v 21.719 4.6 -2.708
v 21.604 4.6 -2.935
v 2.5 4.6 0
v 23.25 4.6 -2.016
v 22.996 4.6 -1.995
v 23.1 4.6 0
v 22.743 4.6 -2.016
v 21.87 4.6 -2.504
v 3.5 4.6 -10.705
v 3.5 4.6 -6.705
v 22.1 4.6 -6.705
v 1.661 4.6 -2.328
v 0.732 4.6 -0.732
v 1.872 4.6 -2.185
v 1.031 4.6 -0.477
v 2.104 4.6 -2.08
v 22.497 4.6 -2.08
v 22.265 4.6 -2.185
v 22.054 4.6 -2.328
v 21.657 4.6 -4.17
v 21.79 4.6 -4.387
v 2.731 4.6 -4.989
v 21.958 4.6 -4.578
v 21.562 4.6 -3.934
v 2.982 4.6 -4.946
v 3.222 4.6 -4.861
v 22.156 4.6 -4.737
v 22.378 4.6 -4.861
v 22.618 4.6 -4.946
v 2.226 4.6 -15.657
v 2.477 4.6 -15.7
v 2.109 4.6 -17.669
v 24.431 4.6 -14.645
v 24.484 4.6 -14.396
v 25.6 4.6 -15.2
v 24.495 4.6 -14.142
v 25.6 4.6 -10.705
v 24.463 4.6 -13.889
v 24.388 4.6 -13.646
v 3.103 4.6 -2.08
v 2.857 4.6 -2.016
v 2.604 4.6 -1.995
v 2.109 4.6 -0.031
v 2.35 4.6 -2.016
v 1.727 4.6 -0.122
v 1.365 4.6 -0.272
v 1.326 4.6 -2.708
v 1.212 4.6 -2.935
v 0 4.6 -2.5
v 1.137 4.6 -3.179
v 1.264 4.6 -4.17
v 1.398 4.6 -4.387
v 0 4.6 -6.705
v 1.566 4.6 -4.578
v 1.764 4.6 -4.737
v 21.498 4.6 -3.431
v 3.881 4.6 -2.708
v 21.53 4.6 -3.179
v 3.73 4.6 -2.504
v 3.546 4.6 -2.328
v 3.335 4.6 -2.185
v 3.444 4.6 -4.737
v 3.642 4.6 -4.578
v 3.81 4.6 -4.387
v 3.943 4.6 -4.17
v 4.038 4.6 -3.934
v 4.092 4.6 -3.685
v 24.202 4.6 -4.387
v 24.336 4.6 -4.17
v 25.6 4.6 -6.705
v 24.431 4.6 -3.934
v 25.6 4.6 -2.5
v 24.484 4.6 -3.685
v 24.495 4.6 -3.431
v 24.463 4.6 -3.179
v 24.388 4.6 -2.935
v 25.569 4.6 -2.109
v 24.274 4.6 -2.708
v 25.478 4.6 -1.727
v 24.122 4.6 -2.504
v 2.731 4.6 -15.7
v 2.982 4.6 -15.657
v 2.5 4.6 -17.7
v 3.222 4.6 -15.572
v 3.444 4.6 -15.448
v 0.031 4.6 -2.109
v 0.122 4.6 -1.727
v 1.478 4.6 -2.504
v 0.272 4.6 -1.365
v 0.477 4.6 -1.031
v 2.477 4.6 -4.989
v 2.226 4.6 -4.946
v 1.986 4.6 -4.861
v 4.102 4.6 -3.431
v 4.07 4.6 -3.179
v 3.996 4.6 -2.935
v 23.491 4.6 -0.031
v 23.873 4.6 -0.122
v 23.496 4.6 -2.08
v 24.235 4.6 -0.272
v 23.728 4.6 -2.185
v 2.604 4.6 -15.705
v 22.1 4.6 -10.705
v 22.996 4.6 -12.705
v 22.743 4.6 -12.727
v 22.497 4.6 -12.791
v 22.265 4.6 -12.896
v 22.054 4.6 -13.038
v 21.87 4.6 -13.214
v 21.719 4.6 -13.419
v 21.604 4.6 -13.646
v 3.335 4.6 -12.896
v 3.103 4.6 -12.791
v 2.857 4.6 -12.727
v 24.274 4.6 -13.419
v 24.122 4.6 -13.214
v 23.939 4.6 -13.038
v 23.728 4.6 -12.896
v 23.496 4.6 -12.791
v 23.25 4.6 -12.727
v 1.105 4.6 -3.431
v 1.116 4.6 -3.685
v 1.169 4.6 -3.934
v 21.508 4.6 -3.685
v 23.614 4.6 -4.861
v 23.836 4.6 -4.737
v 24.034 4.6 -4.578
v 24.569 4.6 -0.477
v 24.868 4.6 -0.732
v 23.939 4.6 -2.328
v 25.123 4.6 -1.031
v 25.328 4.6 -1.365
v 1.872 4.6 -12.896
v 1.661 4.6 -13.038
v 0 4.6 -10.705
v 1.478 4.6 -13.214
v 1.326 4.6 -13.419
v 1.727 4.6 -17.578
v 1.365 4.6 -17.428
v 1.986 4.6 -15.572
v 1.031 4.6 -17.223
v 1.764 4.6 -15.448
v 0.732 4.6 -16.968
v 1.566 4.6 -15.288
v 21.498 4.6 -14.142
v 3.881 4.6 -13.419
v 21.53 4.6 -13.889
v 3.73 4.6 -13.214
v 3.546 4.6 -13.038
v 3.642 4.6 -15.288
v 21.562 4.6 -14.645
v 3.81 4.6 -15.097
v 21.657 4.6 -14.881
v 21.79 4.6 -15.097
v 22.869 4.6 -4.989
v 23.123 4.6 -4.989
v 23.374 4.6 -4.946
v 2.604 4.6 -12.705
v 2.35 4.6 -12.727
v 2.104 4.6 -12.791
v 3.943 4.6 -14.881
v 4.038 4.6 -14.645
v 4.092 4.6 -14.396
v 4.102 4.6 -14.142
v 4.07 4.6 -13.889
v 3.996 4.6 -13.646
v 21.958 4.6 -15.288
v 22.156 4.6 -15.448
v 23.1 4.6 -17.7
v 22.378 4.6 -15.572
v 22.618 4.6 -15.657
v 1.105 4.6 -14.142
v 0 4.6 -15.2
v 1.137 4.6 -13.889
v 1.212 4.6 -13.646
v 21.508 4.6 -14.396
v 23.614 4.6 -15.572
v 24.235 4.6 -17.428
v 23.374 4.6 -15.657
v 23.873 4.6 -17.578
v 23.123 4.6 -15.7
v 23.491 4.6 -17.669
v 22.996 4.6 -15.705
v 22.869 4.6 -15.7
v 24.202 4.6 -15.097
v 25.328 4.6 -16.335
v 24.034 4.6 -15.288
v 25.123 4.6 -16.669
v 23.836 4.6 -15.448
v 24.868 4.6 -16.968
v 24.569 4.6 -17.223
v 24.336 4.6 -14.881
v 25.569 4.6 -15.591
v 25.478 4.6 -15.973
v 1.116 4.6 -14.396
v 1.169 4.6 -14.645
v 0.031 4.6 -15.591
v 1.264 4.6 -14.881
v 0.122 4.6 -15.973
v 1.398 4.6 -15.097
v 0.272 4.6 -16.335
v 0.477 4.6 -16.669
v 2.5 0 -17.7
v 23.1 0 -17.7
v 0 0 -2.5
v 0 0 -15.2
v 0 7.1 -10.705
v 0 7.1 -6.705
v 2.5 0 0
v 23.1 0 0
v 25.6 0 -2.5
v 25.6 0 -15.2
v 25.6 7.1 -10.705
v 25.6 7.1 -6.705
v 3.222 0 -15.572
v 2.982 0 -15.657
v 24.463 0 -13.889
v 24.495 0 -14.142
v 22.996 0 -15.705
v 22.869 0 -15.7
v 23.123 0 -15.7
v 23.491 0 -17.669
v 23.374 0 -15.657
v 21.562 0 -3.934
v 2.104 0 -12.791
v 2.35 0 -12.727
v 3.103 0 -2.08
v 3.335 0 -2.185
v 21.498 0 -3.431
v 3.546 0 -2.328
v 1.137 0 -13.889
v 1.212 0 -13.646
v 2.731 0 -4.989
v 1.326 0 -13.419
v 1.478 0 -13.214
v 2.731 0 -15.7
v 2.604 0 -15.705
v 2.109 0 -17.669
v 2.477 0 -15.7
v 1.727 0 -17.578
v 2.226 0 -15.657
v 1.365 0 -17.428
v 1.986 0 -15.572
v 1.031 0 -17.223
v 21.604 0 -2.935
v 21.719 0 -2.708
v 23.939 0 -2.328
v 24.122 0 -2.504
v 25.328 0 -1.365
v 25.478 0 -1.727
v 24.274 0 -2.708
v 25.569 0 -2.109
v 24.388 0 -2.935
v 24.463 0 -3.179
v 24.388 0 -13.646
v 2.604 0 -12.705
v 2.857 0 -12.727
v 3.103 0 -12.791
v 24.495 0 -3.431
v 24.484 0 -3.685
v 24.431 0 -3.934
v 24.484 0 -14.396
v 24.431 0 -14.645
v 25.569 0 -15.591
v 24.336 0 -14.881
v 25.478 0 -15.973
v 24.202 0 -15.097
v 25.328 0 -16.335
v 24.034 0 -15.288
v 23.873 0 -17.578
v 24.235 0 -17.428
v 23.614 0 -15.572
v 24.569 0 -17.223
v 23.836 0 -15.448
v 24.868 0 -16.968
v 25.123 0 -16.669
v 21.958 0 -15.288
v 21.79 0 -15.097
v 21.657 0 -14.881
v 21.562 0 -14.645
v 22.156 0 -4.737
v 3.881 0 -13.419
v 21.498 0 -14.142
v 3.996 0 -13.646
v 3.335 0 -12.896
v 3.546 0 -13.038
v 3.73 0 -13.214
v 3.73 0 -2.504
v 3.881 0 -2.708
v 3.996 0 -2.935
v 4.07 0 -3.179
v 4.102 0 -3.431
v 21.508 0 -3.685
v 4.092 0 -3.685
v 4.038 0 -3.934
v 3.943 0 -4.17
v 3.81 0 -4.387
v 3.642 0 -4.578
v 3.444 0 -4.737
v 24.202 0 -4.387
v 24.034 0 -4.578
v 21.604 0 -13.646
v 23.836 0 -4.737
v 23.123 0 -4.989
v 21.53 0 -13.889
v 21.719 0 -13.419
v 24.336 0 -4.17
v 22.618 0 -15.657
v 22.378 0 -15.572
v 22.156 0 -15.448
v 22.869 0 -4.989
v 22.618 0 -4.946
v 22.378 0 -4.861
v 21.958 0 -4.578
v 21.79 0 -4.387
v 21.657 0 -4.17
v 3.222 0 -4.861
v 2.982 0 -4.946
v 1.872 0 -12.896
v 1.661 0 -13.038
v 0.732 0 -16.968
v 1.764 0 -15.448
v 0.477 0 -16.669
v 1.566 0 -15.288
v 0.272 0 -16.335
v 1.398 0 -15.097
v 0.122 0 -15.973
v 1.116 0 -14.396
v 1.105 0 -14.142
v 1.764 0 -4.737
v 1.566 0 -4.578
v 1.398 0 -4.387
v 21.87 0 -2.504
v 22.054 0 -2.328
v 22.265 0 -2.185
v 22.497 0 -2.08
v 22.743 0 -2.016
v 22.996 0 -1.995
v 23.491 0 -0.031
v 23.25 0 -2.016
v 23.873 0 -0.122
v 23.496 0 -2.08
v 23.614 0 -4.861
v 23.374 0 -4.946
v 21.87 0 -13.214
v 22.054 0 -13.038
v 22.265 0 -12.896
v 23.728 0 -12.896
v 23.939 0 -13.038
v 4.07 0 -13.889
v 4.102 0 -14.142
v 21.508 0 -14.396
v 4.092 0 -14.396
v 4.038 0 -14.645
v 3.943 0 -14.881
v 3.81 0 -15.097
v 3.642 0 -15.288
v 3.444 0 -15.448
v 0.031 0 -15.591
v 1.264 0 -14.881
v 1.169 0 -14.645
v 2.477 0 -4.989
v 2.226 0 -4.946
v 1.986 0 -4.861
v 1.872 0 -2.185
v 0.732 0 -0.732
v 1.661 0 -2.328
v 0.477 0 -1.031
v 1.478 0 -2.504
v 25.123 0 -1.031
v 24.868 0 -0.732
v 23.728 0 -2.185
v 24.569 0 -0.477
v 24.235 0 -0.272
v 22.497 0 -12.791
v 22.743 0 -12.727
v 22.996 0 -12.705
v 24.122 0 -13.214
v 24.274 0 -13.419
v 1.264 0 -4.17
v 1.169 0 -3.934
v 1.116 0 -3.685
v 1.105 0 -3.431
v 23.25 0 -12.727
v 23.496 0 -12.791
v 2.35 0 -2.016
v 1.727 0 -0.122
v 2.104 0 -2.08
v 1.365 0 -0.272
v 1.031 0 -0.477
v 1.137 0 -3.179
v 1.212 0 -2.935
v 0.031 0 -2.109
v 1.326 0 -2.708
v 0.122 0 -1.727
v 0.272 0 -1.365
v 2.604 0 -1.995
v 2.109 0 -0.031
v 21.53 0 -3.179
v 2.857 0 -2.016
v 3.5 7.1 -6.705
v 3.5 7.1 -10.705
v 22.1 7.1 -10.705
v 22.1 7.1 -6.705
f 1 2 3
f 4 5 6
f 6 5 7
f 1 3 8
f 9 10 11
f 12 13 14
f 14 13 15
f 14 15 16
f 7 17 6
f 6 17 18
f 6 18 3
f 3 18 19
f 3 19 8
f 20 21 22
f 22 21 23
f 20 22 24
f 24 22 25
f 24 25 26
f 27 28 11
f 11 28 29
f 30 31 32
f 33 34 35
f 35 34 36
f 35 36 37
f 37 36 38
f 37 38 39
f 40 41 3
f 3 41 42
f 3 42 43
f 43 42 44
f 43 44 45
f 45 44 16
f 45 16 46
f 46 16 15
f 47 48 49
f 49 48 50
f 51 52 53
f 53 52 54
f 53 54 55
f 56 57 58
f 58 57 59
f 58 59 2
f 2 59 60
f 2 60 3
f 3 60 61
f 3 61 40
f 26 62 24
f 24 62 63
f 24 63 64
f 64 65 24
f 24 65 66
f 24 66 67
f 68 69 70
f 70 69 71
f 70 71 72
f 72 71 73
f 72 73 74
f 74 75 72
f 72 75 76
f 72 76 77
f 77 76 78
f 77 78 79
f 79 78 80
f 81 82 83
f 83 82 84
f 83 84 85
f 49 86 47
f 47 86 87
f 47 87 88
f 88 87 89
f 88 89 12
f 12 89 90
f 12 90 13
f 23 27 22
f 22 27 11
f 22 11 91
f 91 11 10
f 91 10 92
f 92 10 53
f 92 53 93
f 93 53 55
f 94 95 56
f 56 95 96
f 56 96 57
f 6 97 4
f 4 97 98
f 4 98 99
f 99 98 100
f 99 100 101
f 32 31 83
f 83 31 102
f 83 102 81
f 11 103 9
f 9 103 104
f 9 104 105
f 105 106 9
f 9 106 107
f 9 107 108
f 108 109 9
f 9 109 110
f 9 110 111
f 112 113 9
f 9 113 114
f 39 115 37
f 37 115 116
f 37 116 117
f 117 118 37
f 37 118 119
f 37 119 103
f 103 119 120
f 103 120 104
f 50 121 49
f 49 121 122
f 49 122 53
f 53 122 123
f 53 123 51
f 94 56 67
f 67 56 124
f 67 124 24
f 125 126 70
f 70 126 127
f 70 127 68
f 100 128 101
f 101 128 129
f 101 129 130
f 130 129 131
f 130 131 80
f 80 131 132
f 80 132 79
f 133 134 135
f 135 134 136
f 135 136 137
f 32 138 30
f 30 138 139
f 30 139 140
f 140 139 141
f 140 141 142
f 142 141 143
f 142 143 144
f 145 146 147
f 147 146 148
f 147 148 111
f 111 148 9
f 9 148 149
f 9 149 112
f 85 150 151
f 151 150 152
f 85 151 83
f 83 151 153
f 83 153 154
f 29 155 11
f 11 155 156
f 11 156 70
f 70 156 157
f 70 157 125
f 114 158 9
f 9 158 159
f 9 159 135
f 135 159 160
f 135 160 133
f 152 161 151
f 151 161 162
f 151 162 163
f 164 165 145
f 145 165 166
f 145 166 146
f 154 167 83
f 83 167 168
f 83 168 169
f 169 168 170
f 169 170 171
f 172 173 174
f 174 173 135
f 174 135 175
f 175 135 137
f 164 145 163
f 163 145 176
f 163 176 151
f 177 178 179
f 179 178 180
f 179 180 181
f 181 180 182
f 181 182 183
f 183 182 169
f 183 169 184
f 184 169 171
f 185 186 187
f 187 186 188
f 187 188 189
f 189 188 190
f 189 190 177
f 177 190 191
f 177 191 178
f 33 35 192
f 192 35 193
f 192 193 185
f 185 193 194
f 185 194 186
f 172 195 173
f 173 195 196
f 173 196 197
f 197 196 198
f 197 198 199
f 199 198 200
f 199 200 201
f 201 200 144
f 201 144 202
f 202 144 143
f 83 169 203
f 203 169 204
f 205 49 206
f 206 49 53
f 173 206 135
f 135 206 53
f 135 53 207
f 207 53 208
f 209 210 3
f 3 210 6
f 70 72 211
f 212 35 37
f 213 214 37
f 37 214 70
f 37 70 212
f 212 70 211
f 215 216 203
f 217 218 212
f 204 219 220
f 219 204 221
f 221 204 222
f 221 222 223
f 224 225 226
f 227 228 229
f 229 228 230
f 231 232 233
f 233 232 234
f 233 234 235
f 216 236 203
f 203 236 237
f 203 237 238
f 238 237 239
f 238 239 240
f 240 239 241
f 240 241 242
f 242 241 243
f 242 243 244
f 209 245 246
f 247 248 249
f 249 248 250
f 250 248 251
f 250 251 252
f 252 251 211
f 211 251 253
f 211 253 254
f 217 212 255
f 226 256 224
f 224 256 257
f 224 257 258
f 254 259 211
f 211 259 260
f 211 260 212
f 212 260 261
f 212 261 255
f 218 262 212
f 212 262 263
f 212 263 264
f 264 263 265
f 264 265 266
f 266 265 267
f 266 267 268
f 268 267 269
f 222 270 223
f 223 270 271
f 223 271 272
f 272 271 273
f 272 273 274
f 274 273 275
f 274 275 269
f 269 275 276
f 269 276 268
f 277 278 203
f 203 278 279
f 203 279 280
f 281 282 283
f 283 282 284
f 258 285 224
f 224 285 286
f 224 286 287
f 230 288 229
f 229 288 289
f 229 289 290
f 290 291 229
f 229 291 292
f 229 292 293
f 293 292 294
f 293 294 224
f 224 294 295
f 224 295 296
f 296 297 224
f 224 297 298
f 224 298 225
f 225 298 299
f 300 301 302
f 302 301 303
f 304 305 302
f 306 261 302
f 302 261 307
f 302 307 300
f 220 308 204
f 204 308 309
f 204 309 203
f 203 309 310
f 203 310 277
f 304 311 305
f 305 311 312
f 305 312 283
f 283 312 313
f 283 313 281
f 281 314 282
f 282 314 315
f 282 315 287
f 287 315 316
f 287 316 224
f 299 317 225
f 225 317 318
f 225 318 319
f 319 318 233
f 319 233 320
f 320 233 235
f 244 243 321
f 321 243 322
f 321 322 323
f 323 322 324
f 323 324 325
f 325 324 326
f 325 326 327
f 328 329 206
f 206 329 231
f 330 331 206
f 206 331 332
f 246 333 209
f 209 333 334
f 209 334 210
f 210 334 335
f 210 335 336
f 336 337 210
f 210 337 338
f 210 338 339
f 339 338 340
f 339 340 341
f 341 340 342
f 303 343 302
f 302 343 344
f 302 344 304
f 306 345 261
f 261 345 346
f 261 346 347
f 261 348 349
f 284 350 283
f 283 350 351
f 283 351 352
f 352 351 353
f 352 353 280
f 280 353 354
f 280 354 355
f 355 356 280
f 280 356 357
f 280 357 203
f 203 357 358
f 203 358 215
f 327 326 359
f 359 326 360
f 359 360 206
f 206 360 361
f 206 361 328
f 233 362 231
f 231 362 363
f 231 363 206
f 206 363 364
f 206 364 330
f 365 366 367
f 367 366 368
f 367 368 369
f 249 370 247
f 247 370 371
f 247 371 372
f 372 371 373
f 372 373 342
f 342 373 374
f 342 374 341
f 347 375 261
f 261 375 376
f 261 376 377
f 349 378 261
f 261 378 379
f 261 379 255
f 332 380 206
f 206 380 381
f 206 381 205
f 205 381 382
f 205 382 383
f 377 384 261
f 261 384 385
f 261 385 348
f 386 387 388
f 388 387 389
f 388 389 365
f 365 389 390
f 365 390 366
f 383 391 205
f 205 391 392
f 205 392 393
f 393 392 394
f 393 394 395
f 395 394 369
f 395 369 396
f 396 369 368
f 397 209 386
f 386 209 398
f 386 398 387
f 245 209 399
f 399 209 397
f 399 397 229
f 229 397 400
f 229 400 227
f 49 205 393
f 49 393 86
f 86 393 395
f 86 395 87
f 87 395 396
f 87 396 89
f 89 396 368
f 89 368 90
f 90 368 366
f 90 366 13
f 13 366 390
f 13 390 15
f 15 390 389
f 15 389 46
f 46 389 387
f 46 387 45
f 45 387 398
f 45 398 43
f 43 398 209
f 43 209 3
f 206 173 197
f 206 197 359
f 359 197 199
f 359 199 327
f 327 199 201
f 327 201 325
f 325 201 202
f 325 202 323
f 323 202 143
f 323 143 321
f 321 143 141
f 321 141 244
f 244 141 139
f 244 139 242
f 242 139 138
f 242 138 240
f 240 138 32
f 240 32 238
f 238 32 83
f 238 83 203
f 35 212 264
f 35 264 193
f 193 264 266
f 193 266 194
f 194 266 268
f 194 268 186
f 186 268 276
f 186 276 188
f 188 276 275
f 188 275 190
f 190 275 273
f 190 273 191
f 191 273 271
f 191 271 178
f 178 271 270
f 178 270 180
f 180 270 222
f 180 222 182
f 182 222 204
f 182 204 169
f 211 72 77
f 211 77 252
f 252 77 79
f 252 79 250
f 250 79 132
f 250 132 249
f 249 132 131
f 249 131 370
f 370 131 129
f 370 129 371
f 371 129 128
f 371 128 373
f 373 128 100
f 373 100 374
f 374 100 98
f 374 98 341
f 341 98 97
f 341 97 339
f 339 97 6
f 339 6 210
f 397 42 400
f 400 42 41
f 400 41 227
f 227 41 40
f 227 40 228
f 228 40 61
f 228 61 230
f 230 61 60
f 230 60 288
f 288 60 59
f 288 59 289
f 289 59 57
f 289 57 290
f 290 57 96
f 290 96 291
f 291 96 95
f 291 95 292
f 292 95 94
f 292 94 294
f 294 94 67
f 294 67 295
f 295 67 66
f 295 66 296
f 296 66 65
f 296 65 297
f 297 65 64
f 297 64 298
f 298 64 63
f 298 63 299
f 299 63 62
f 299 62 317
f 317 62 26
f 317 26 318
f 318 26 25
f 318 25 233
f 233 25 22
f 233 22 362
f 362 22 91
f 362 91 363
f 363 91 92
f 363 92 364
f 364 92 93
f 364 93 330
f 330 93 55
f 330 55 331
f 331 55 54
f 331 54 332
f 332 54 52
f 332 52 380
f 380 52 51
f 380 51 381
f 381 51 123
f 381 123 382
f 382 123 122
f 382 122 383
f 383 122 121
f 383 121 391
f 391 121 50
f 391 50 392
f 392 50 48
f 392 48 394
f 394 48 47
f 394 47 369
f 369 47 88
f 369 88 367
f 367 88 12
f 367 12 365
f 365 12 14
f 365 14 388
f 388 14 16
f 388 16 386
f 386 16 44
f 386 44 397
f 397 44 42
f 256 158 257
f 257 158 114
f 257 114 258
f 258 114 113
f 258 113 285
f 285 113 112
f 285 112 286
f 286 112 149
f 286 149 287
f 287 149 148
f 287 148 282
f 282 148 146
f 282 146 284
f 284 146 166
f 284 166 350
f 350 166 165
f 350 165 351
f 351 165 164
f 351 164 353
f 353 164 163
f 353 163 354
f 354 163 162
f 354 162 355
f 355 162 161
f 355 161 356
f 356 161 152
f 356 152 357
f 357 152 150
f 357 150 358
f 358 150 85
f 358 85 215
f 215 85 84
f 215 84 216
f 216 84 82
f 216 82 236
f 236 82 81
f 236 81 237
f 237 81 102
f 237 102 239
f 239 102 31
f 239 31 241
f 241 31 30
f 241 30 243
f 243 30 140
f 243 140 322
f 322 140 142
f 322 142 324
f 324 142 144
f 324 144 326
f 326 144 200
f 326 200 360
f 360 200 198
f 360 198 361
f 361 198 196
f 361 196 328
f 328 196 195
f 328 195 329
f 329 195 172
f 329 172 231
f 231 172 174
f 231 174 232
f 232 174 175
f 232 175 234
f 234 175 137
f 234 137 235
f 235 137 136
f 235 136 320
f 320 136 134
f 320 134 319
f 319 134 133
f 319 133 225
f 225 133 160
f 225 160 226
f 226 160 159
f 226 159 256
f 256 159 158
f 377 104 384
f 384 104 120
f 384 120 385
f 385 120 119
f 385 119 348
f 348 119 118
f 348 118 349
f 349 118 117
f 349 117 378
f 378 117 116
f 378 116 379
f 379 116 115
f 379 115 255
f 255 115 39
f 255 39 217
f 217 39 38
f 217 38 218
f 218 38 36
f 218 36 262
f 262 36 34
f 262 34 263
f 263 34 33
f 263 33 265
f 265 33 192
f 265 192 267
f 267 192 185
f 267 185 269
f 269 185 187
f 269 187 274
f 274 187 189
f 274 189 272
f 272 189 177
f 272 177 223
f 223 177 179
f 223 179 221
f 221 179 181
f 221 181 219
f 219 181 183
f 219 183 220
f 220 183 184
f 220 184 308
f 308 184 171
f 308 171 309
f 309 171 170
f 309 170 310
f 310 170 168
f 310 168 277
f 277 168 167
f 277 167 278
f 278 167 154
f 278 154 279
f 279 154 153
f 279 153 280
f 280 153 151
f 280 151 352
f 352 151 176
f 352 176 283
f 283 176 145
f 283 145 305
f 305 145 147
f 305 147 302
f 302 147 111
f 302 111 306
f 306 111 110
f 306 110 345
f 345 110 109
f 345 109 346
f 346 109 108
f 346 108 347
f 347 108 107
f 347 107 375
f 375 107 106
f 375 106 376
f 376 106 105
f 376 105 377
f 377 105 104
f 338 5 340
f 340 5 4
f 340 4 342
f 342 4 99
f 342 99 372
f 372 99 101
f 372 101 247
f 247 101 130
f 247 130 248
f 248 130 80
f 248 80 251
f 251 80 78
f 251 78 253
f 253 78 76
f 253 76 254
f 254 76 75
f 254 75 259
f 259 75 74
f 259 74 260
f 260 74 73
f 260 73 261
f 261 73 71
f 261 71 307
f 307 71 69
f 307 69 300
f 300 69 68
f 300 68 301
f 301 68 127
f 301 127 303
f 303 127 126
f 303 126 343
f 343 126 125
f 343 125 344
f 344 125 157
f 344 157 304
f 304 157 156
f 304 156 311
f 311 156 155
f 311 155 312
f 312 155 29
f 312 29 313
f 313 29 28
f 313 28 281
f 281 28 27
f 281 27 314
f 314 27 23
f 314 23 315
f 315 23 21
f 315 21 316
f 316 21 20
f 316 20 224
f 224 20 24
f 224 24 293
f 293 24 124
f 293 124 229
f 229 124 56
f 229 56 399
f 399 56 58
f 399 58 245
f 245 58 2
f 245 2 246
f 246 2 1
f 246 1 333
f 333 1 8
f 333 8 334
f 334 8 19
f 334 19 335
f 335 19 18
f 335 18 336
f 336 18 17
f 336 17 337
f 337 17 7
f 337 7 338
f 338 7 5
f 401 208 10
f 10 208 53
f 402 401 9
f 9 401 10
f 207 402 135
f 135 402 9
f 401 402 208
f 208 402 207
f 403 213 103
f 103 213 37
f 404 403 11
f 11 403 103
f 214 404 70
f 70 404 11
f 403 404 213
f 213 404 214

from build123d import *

# Parameters (mm, degrees)
SKETCH1_W               = 25.6
SKETCH1_H               = 17.7
BOSS_EXTRUDE1_DEPTH     = 4.6
FILLET1_R               = 2.5
SKETCH3_R               = 1.5
CUT_EXTRUDE1_DEPTH      = 32.461246002
MIRROR2_COPY_1_SKETCH_R = 1.5
MIRROR2_COPY_1_DEPTH    = 32.461246002
SKETCH6_W               = 3.5
SKETCH6_H               = 4
BOSS_EXTRUDE2_DEPTH     = 2.5


with BuildPart() as part:
    # Sketch1 → Boss-Extrude1 (new body)
    with BuildSketch(Plane(origin=(0, 0, 0), x_dir=(1, 0, 0), z_dir=(0, 1, 0))):
        with Locations((12.8, 8.85)):
            Rectangle(SKETCH1_W, SKETCH1_H)
    extrude(amount=BOSS_EXTRUDE1_DEPTH)

    # Fillet1
    fillet1_edges = [part.edges().sort_by_distance(p)[0] for p in [
        (0, 2.3, -17.7),
        (0, 2.3, 0),
        (25.6, 2.3, 0),
        (25.6, 2.3, -17.7),
    ]]
    fillet(fillet1_edges, radius=FILLET1_R)

    # Sketch3 → Cut-Extrude1 (cut, through all)
    with BuildSketch(Plane(origin=(0, 4.6, 0), x_dir=(1, 0, 0), z_dir=(0, 1, 0))):
        with Locations(Location((2.603725991, 3.494605911, 0), (0, 0, 270))):
            Circle(SKETCH3_R)
    cut_extrude1 = extrude(amount=-CUT_EXTRUDE1_DEPTH, mode=Mode.SUBTRACT)

    # Mirror1: Cut-Extrude1 across plane
    add(cut_extrude1.mirror(Plane.XY.offset(-8.85)), mode=Mode.SUBTRACT)

    # Mirror2: Cut-Extrude1 across plane
    add(cut_extrude1.mirror(Plane.ZY.offset(-12.8)), mode=Mode.SUBTRACT)

    # Mirror2 copy 1 sketch → Mirror2 copy 1 (cut, through all)
    with BuildSketch(Plane(origin=(25.6, 4.6, -17.7), x_dir=(-1, 0, 0), z_dir=(0, 1, 0))):
        with Locations(Location((2.603725991, 3.494605911, 0), (0, 0, 270))):
            Circle(MIRROR2_COPY_1_SKETCH_R)
    extrude(amount=-MIRROR2_COPY_1_DEPTH, mode=Mode.SUBTRACT)

    # Sketch6 → Boss-Extrude2 (add)
    with BuildSketch(Plane(origin=(0, 4.6, 0), x_dir=(1, 0, 0), z_dir=(0, 1, 0))):
        with Locations((1.75, 8.705394089)):
            Rectangle(SKETCH6_W, SKETCH6_H)
    boss_extrude2 = extrude(amount=BOSS_EXTRUDE2_DEPTH)

    # Mirror3: Boss-Extrude2 across plane
    add(boss_extrude2.mirror(Plane.ZY.offset(-12.8)))


solid = part.part
